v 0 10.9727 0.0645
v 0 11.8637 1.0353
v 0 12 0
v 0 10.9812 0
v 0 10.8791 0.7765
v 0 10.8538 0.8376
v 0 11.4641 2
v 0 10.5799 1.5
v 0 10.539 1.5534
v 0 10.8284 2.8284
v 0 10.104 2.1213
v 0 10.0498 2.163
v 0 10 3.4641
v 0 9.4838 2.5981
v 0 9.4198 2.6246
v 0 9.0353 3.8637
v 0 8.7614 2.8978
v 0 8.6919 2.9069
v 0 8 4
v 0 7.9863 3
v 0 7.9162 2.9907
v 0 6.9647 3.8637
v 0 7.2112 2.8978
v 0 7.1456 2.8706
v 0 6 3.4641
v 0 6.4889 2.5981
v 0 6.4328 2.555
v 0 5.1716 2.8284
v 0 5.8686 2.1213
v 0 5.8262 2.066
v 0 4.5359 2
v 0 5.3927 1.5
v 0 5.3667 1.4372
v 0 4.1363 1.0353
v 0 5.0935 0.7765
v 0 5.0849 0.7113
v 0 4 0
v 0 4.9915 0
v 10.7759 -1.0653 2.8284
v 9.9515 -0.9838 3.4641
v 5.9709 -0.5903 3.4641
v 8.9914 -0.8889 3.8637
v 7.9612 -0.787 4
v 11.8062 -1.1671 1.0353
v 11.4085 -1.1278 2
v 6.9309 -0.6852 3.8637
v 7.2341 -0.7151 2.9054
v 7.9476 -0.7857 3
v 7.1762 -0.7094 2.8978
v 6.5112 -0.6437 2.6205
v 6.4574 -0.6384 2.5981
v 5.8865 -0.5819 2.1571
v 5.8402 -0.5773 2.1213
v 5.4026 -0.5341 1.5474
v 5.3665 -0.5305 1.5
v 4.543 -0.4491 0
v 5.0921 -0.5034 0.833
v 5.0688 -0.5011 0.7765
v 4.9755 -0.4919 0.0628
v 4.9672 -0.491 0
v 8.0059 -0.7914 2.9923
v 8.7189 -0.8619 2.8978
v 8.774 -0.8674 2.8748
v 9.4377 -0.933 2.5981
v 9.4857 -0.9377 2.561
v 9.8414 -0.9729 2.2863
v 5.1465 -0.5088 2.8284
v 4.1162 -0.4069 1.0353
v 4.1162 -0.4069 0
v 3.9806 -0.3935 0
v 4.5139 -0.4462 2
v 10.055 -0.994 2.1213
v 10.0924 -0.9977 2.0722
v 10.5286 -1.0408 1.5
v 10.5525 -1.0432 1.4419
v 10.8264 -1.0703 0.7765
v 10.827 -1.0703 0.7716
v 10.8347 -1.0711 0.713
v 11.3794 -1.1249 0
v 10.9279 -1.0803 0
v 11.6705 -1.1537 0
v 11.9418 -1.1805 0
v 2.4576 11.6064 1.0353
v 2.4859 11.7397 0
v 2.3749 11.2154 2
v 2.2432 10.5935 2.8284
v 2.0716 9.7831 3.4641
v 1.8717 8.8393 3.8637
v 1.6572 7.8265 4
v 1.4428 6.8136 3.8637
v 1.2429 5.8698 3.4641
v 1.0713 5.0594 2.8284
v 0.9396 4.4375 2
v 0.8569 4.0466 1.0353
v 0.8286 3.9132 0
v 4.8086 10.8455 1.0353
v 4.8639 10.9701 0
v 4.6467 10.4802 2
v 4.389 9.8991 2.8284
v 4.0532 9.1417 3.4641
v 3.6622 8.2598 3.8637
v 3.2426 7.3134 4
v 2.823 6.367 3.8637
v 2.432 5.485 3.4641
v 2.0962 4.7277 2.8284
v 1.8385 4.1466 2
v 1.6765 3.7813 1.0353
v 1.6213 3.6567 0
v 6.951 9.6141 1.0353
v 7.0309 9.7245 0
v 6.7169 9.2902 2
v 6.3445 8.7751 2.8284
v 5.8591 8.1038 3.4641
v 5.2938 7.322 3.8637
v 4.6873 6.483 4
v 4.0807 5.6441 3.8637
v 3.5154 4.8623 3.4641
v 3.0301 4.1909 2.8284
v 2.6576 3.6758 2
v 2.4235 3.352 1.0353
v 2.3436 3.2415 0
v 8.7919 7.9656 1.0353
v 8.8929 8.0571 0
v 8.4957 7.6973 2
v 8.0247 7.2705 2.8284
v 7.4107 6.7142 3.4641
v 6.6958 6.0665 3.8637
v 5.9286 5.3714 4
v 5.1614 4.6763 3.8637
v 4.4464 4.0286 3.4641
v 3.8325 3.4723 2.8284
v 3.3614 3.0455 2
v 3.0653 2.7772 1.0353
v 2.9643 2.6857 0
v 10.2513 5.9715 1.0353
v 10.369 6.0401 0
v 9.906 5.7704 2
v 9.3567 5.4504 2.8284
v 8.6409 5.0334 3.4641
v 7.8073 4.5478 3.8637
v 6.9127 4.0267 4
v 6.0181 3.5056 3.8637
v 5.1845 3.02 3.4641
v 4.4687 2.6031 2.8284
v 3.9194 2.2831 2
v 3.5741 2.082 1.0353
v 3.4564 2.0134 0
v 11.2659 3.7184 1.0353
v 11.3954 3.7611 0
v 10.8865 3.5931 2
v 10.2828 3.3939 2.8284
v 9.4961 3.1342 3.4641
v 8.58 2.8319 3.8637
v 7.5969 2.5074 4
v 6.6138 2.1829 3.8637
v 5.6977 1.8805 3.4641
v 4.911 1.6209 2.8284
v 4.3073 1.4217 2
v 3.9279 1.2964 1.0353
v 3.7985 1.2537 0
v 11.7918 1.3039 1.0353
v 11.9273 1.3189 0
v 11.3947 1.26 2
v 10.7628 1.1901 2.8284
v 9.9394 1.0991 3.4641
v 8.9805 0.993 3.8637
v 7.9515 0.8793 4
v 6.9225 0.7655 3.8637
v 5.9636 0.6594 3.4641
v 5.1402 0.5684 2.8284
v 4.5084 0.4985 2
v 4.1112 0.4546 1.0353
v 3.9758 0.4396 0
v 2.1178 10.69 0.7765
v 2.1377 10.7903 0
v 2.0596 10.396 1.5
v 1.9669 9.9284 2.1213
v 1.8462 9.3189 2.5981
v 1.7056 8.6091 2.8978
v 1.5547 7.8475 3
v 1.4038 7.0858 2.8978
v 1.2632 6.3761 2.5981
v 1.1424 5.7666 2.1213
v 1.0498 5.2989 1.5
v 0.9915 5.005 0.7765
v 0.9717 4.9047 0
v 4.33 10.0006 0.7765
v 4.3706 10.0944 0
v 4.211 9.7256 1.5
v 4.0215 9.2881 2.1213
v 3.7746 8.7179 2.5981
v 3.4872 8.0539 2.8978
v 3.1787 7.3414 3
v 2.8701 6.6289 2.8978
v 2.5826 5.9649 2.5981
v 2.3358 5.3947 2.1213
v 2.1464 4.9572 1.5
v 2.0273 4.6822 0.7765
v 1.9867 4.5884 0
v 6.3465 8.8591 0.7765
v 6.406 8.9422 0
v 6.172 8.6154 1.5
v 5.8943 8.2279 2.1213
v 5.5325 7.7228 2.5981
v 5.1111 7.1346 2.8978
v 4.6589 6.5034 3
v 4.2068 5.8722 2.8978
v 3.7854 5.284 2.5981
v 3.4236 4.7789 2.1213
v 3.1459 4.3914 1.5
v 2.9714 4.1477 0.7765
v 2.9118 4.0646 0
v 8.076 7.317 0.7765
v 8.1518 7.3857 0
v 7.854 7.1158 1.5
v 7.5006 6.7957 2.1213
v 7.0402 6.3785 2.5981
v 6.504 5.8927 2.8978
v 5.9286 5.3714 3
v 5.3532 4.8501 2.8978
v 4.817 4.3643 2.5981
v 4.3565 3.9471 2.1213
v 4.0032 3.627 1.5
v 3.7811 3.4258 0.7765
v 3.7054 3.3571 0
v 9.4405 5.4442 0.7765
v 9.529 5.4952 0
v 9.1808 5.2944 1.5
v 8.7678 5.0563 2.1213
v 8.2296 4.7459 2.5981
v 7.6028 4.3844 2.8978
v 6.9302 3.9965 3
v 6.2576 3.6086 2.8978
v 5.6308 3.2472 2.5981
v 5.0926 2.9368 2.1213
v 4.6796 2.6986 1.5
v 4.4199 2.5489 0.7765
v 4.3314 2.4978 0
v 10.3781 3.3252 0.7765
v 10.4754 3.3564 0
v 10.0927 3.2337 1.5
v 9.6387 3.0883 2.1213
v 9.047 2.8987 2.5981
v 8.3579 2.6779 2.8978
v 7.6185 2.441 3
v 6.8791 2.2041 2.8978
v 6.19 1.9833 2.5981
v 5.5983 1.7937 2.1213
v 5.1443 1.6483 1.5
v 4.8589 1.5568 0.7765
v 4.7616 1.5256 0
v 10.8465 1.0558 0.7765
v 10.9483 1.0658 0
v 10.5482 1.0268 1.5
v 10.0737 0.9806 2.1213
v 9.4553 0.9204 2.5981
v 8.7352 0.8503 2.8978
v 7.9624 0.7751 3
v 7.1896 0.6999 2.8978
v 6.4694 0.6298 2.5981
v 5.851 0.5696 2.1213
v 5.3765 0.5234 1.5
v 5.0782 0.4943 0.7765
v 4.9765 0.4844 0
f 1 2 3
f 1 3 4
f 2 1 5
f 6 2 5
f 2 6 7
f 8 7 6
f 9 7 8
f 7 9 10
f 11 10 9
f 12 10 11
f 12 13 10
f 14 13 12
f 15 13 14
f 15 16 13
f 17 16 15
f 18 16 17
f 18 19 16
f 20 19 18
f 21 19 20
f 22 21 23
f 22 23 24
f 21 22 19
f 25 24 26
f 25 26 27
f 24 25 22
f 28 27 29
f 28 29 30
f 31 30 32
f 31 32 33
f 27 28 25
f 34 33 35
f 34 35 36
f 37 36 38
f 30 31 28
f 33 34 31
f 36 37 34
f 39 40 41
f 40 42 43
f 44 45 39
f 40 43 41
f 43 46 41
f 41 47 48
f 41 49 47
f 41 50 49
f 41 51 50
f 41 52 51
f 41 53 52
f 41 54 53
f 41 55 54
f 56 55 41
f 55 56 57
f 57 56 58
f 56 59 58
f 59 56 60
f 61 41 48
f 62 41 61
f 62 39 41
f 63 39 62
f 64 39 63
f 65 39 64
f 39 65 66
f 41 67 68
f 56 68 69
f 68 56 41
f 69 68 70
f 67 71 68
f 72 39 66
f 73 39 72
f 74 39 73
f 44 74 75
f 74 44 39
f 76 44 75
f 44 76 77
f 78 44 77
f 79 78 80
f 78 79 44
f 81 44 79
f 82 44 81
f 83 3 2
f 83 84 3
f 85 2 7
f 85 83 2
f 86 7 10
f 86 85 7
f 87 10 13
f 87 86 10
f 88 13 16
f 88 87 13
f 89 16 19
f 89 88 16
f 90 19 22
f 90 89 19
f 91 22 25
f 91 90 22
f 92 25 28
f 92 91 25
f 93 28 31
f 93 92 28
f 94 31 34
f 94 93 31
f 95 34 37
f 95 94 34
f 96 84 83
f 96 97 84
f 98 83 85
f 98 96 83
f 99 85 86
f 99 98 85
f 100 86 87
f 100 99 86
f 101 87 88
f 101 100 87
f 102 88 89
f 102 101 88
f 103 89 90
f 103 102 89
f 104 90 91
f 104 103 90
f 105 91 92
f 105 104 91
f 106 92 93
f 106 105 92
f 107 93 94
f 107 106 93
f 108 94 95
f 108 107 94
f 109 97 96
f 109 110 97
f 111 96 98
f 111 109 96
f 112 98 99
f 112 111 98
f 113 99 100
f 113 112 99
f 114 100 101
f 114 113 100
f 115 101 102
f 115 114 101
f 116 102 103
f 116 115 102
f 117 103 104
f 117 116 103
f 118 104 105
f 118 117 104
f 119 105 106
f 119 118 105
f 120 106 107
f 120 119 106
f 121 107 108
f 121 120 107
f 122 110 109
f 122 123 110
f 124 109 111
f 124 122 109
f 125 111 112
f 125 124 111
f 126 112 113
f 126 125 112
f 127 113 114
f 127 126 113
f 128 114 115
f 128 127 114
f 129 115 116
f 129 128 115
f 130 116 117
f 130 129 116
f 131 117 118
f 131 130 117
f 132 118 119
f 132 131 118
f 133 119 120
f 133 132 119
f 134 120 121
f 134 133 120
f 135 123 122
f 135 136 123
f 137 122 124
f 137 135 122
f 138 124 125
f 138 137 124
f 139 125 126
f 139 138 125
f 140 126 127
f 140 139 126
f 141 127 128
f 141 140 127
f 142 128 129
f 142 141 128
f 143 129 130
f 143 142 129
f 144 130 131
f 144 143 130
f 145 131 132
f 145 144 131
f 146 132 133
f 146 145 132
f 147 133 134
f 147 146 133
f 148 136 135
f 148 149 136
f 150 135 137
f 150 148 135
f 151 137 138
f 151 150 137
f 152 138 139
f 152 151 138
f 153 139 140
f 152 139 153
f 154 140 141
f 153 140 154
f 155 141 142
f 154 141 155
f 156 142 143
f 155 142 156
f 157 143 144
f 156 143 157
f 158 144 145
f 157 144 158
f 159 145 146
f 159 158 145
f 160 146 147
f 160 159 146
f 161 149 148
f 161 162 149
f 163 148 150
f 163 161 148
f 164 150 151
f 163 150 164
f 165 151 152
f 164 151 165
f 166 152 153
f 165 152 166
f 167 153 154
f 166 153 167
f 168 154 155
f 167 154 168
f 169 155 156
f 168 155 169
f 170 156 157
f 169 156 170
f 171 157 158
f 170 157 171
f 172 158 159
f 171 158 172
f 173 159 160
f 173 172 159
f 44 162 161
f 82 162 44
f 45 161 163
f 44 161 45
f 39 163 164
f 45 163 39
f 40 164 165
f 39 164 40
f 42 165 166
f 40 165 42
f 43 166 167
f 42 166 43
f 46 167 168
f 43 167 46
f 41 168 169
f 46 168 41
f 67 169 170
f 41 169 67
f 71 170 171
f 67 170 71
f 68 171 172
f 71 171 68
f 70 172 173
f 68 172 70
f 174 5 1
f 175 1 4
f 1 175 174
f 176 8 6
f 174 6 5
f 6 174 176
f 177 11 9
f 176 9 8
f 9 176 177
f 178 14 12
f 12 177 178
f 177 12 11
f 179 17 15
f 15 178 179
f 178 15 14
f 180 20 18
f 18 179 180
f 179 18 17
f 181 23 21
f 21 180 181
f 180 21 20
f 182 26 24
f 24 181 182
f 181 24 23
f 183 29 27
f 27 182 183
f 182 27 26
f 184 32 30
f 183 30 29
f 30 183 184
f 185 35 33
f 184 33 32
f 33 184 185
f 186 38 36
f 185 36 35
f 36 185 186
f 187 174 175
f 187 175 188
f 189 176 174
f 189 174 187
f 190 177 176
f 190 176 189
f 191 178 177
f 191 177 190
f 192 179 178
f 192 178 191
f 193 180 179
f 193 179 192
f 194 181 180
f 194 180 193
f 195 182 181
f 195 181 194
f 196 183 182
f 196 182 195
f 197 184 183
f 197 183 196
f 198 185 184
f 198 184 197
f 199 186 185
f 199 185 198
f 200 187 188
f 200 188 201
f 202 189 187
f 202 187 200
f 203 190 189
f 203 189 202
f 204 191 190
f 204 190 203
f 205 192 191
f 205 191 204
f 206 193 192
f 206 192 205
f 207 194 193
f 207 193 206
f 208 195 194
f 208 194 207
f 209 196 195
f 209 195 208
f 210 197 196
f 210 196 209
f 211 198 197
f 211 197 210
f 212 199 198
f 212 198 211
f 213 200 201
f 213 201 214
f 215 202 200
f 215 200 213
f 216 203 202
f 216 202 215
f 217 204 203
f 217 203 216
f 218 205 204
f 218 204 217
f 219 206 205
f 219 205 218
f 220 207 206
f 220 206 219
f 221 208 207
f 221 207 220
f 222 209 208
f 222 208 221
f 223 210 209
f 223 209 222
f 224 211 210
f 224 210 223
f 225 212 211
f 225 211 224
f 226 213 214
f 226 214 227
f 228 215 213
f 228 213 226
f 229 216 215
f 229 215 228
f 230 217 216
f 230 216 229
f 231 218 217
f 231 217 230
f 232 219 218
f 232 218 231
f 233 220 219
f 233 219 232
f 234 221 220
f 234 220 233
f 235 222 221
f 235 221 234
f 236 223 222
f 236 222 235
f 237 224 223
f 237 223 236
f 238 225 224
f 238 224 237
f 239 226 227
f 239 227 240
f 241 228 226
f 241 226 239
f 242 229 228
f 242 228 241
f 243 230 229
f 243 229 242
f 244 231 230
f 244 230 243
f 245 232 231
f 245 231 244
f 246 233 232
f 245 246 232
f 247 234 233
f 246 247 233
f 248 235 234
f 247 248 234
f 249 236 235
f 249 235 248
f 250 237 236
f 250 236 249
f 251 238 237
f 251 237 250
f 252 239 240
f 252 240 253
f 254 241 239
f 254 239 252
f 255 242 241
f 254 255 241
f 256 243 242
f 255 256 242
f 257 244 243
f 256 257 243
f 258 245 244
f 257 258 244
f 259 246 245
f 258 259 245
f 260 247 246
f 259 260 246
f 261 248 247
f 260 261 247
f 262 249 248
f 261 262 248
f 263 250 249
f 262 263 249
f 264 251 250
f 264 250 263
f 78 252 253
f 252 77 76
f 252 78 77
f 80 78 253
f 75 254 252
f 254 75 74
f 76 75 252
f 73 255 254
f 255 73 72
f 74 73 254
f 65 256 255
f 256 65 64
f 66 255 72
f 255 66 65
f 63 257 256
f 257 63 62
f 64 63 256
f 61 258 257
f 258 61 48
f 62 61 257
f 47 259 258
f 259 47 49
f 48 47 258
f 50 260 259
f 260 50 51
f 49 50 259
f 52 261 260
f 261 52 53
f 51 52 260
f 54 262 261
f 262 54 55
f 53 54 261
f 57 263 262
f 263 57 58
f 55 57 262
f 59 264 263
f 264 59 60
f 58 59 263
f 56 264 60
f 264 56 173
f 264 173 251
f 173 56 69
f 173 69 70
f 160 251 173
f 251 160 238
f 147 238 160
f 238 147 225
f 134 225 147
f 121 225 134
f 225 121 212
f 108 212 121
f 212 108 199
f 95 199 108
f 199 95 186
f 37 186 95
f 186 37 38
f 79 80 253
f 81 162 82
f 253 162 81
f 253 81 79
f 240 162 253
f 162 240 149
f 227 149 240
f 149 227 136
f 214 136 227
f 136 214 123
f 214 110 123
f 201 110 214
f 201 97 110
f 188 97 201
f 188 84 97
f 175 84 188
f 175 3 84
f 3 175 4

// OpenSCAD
// file: ../build_environments.scad
// build_environments.scad: modules to build level sections
//

module pool(diameter=10.0, wall_height=2.0, step_width=3.0, connections=[])
{
    difference() {
        union() {
        difference() {
            cylinder(h=0.5,r1=diameter+step_width,r2=diameter+step_width,$fn=48);
            translate([0,0,-0.1])
                cylinder(h=0.7,r1=diameter,r2=diameter,$fn=48);
        }
        difference() {
            cylinder(h=wall_height,r1=diameter+step_width+1.0,r2=diameter+step_width+1.0,$fn=48);
            translate([0,0,-0.1])
                cylinder(h=wall_height+0.2,r1=diameter+step_width,r2=diameter+step_width,$fn=48);
        }
        }
    
        for (c = connections)
        {
            rotate([0,90,0]) {
                angle = atan2(c[1],c[0]);
                rotate([-angle,0,0]) {
                    cylinder(h=diameter+5.0,r1=c[2],r2=c[2],$fn=48);
                }
            }
        }
    }
}

module straight(length=10.0, width=2.0, dy1=0.0, dy2=0.0, dz=0.0)
{
    dims = [0, 0, 0, 0, 0, (dz/length)];
    matrix = [
        [ 1, dims[0], dims[1], 0 ],
        [ dims[2], 1, dims[4], 0 ],
        [ dims[5], dims[3], 1, 0 ],
        [ 0, 0, 0, 1 ]
    ];
    multmatrix(matrix)
    difference() {
        translate([dy1,0,0])
        union() {
            rotate([0,90,0]) {
                difference() {
                    cylinder(h=(length-dy1-dy2),r1=width+1.0,r2=width+1.0,$fn=24);
                    translate([0,0,-0.1])
                        cylinder(h=(length-dy1-dy2+0.2),r1=width,r2=width,$fn=24);
                }
                difference() {
                    cylinder(h=1.0,r1=width+2.0,r2=width+2.0,$fn=24);
                    translate([0,0,-0.1])
                        cylinder(h=1.2,r1=width,r2=width,$fn=24);
                }
                translate([0,0,(length-dy1-dy2)-1.0]) {
                    difference() {
                        cylinder(h=1.0,r1=width+2.0,r2=width+2.0,$fn=24);
                        translate([0,0,-0.1])
                            cylinder(h=1.2,r1=width,r2=width,$fn=24);
                    }
                }
            }
        }
        translate([0,0,-(2*width+4.0)/2])
            cube([3*length,3*length,2*width+4.0],center=true);
    }
}

module curve(p0=[0,0], center=[0,0], dir=1, angle=0.0, width=2.0)
{
    radius = sqrt((p0[0]-center[0])*(p0[0]-center[0]) + (p0[1]-center[1])*(p0[1]-center[1]));
    if (dir == 0) {
        difference() {
            rotate([0,0,-90])
            difference() {
                rotate_extrude(angle = angle, convexity = 10, $fn=32)
                    translate([radius, 0, 0])
                        circle(r = width+1.0,$fn=24);
                rotate([0,0,-1.0])
                    rotate_extrude(angle = angle+2.0, convexity = 10, $fn=32)
                        translate([radius, 0, 0])
                            circle(r = width,$fn=24);
            }
            translate([0,0,-(2*width+4.0)/2])
                cube([5*radius,5*radius,2*width+4.0],center=true);
        }
    }
    else {
        difference() {
            rotate([0,0,90])
            difference() {
                rotate_extrude(angle = -angle, convexity = 10, $fn=32)
                    translate([radius, 0, 0])
                        circle(r = width+1.0,$fn=24);
                rotate([0,0,1.0])
                    rotate_extrude(angle = -angle-2.0, convexity = 10, $fn=32)
                        translate([radius, 0, 0])
                            circle(r = width,$fn=24);
            }
            translate([0,0,-(2*width+4.0)/2])
                cube([5*radius,5*radius,2*width+4.0],center=true);
        }
    }

}

// test pool
//pool(diameter=12.0000, wall_height=3.0000, step_width=3.0000, connections=[[0.0000,-26.0000,2.0000], [23.6074,0.0000,2.0000]]);

// test straight, slope
//straight(length=26.0000, width=2.0000, dy1=11.8322, dy2=6.7082, dz=0.0000);
//straight(length=29.1549, width=12.0000, dy1=0.0000, dy2=0.0000, dz=-15.0000);

// test curve
//curve(p0=[23.6074, 0.0000], center=[23.6074, 5.0000], dir=0, angle=60.1011, width=2.0000);
//curve(p0=[33.6426, 12.4219], center=[37.9771, 9.9295], dir=1, angle=120.4627, width=2.0000);
// main file
use <../build_environments.scad>;
curve(p0=[-25.4640, 67.6675], center=[-33.4549, 67.2860], dir=1, angle=95.6458, width=3.0000);
